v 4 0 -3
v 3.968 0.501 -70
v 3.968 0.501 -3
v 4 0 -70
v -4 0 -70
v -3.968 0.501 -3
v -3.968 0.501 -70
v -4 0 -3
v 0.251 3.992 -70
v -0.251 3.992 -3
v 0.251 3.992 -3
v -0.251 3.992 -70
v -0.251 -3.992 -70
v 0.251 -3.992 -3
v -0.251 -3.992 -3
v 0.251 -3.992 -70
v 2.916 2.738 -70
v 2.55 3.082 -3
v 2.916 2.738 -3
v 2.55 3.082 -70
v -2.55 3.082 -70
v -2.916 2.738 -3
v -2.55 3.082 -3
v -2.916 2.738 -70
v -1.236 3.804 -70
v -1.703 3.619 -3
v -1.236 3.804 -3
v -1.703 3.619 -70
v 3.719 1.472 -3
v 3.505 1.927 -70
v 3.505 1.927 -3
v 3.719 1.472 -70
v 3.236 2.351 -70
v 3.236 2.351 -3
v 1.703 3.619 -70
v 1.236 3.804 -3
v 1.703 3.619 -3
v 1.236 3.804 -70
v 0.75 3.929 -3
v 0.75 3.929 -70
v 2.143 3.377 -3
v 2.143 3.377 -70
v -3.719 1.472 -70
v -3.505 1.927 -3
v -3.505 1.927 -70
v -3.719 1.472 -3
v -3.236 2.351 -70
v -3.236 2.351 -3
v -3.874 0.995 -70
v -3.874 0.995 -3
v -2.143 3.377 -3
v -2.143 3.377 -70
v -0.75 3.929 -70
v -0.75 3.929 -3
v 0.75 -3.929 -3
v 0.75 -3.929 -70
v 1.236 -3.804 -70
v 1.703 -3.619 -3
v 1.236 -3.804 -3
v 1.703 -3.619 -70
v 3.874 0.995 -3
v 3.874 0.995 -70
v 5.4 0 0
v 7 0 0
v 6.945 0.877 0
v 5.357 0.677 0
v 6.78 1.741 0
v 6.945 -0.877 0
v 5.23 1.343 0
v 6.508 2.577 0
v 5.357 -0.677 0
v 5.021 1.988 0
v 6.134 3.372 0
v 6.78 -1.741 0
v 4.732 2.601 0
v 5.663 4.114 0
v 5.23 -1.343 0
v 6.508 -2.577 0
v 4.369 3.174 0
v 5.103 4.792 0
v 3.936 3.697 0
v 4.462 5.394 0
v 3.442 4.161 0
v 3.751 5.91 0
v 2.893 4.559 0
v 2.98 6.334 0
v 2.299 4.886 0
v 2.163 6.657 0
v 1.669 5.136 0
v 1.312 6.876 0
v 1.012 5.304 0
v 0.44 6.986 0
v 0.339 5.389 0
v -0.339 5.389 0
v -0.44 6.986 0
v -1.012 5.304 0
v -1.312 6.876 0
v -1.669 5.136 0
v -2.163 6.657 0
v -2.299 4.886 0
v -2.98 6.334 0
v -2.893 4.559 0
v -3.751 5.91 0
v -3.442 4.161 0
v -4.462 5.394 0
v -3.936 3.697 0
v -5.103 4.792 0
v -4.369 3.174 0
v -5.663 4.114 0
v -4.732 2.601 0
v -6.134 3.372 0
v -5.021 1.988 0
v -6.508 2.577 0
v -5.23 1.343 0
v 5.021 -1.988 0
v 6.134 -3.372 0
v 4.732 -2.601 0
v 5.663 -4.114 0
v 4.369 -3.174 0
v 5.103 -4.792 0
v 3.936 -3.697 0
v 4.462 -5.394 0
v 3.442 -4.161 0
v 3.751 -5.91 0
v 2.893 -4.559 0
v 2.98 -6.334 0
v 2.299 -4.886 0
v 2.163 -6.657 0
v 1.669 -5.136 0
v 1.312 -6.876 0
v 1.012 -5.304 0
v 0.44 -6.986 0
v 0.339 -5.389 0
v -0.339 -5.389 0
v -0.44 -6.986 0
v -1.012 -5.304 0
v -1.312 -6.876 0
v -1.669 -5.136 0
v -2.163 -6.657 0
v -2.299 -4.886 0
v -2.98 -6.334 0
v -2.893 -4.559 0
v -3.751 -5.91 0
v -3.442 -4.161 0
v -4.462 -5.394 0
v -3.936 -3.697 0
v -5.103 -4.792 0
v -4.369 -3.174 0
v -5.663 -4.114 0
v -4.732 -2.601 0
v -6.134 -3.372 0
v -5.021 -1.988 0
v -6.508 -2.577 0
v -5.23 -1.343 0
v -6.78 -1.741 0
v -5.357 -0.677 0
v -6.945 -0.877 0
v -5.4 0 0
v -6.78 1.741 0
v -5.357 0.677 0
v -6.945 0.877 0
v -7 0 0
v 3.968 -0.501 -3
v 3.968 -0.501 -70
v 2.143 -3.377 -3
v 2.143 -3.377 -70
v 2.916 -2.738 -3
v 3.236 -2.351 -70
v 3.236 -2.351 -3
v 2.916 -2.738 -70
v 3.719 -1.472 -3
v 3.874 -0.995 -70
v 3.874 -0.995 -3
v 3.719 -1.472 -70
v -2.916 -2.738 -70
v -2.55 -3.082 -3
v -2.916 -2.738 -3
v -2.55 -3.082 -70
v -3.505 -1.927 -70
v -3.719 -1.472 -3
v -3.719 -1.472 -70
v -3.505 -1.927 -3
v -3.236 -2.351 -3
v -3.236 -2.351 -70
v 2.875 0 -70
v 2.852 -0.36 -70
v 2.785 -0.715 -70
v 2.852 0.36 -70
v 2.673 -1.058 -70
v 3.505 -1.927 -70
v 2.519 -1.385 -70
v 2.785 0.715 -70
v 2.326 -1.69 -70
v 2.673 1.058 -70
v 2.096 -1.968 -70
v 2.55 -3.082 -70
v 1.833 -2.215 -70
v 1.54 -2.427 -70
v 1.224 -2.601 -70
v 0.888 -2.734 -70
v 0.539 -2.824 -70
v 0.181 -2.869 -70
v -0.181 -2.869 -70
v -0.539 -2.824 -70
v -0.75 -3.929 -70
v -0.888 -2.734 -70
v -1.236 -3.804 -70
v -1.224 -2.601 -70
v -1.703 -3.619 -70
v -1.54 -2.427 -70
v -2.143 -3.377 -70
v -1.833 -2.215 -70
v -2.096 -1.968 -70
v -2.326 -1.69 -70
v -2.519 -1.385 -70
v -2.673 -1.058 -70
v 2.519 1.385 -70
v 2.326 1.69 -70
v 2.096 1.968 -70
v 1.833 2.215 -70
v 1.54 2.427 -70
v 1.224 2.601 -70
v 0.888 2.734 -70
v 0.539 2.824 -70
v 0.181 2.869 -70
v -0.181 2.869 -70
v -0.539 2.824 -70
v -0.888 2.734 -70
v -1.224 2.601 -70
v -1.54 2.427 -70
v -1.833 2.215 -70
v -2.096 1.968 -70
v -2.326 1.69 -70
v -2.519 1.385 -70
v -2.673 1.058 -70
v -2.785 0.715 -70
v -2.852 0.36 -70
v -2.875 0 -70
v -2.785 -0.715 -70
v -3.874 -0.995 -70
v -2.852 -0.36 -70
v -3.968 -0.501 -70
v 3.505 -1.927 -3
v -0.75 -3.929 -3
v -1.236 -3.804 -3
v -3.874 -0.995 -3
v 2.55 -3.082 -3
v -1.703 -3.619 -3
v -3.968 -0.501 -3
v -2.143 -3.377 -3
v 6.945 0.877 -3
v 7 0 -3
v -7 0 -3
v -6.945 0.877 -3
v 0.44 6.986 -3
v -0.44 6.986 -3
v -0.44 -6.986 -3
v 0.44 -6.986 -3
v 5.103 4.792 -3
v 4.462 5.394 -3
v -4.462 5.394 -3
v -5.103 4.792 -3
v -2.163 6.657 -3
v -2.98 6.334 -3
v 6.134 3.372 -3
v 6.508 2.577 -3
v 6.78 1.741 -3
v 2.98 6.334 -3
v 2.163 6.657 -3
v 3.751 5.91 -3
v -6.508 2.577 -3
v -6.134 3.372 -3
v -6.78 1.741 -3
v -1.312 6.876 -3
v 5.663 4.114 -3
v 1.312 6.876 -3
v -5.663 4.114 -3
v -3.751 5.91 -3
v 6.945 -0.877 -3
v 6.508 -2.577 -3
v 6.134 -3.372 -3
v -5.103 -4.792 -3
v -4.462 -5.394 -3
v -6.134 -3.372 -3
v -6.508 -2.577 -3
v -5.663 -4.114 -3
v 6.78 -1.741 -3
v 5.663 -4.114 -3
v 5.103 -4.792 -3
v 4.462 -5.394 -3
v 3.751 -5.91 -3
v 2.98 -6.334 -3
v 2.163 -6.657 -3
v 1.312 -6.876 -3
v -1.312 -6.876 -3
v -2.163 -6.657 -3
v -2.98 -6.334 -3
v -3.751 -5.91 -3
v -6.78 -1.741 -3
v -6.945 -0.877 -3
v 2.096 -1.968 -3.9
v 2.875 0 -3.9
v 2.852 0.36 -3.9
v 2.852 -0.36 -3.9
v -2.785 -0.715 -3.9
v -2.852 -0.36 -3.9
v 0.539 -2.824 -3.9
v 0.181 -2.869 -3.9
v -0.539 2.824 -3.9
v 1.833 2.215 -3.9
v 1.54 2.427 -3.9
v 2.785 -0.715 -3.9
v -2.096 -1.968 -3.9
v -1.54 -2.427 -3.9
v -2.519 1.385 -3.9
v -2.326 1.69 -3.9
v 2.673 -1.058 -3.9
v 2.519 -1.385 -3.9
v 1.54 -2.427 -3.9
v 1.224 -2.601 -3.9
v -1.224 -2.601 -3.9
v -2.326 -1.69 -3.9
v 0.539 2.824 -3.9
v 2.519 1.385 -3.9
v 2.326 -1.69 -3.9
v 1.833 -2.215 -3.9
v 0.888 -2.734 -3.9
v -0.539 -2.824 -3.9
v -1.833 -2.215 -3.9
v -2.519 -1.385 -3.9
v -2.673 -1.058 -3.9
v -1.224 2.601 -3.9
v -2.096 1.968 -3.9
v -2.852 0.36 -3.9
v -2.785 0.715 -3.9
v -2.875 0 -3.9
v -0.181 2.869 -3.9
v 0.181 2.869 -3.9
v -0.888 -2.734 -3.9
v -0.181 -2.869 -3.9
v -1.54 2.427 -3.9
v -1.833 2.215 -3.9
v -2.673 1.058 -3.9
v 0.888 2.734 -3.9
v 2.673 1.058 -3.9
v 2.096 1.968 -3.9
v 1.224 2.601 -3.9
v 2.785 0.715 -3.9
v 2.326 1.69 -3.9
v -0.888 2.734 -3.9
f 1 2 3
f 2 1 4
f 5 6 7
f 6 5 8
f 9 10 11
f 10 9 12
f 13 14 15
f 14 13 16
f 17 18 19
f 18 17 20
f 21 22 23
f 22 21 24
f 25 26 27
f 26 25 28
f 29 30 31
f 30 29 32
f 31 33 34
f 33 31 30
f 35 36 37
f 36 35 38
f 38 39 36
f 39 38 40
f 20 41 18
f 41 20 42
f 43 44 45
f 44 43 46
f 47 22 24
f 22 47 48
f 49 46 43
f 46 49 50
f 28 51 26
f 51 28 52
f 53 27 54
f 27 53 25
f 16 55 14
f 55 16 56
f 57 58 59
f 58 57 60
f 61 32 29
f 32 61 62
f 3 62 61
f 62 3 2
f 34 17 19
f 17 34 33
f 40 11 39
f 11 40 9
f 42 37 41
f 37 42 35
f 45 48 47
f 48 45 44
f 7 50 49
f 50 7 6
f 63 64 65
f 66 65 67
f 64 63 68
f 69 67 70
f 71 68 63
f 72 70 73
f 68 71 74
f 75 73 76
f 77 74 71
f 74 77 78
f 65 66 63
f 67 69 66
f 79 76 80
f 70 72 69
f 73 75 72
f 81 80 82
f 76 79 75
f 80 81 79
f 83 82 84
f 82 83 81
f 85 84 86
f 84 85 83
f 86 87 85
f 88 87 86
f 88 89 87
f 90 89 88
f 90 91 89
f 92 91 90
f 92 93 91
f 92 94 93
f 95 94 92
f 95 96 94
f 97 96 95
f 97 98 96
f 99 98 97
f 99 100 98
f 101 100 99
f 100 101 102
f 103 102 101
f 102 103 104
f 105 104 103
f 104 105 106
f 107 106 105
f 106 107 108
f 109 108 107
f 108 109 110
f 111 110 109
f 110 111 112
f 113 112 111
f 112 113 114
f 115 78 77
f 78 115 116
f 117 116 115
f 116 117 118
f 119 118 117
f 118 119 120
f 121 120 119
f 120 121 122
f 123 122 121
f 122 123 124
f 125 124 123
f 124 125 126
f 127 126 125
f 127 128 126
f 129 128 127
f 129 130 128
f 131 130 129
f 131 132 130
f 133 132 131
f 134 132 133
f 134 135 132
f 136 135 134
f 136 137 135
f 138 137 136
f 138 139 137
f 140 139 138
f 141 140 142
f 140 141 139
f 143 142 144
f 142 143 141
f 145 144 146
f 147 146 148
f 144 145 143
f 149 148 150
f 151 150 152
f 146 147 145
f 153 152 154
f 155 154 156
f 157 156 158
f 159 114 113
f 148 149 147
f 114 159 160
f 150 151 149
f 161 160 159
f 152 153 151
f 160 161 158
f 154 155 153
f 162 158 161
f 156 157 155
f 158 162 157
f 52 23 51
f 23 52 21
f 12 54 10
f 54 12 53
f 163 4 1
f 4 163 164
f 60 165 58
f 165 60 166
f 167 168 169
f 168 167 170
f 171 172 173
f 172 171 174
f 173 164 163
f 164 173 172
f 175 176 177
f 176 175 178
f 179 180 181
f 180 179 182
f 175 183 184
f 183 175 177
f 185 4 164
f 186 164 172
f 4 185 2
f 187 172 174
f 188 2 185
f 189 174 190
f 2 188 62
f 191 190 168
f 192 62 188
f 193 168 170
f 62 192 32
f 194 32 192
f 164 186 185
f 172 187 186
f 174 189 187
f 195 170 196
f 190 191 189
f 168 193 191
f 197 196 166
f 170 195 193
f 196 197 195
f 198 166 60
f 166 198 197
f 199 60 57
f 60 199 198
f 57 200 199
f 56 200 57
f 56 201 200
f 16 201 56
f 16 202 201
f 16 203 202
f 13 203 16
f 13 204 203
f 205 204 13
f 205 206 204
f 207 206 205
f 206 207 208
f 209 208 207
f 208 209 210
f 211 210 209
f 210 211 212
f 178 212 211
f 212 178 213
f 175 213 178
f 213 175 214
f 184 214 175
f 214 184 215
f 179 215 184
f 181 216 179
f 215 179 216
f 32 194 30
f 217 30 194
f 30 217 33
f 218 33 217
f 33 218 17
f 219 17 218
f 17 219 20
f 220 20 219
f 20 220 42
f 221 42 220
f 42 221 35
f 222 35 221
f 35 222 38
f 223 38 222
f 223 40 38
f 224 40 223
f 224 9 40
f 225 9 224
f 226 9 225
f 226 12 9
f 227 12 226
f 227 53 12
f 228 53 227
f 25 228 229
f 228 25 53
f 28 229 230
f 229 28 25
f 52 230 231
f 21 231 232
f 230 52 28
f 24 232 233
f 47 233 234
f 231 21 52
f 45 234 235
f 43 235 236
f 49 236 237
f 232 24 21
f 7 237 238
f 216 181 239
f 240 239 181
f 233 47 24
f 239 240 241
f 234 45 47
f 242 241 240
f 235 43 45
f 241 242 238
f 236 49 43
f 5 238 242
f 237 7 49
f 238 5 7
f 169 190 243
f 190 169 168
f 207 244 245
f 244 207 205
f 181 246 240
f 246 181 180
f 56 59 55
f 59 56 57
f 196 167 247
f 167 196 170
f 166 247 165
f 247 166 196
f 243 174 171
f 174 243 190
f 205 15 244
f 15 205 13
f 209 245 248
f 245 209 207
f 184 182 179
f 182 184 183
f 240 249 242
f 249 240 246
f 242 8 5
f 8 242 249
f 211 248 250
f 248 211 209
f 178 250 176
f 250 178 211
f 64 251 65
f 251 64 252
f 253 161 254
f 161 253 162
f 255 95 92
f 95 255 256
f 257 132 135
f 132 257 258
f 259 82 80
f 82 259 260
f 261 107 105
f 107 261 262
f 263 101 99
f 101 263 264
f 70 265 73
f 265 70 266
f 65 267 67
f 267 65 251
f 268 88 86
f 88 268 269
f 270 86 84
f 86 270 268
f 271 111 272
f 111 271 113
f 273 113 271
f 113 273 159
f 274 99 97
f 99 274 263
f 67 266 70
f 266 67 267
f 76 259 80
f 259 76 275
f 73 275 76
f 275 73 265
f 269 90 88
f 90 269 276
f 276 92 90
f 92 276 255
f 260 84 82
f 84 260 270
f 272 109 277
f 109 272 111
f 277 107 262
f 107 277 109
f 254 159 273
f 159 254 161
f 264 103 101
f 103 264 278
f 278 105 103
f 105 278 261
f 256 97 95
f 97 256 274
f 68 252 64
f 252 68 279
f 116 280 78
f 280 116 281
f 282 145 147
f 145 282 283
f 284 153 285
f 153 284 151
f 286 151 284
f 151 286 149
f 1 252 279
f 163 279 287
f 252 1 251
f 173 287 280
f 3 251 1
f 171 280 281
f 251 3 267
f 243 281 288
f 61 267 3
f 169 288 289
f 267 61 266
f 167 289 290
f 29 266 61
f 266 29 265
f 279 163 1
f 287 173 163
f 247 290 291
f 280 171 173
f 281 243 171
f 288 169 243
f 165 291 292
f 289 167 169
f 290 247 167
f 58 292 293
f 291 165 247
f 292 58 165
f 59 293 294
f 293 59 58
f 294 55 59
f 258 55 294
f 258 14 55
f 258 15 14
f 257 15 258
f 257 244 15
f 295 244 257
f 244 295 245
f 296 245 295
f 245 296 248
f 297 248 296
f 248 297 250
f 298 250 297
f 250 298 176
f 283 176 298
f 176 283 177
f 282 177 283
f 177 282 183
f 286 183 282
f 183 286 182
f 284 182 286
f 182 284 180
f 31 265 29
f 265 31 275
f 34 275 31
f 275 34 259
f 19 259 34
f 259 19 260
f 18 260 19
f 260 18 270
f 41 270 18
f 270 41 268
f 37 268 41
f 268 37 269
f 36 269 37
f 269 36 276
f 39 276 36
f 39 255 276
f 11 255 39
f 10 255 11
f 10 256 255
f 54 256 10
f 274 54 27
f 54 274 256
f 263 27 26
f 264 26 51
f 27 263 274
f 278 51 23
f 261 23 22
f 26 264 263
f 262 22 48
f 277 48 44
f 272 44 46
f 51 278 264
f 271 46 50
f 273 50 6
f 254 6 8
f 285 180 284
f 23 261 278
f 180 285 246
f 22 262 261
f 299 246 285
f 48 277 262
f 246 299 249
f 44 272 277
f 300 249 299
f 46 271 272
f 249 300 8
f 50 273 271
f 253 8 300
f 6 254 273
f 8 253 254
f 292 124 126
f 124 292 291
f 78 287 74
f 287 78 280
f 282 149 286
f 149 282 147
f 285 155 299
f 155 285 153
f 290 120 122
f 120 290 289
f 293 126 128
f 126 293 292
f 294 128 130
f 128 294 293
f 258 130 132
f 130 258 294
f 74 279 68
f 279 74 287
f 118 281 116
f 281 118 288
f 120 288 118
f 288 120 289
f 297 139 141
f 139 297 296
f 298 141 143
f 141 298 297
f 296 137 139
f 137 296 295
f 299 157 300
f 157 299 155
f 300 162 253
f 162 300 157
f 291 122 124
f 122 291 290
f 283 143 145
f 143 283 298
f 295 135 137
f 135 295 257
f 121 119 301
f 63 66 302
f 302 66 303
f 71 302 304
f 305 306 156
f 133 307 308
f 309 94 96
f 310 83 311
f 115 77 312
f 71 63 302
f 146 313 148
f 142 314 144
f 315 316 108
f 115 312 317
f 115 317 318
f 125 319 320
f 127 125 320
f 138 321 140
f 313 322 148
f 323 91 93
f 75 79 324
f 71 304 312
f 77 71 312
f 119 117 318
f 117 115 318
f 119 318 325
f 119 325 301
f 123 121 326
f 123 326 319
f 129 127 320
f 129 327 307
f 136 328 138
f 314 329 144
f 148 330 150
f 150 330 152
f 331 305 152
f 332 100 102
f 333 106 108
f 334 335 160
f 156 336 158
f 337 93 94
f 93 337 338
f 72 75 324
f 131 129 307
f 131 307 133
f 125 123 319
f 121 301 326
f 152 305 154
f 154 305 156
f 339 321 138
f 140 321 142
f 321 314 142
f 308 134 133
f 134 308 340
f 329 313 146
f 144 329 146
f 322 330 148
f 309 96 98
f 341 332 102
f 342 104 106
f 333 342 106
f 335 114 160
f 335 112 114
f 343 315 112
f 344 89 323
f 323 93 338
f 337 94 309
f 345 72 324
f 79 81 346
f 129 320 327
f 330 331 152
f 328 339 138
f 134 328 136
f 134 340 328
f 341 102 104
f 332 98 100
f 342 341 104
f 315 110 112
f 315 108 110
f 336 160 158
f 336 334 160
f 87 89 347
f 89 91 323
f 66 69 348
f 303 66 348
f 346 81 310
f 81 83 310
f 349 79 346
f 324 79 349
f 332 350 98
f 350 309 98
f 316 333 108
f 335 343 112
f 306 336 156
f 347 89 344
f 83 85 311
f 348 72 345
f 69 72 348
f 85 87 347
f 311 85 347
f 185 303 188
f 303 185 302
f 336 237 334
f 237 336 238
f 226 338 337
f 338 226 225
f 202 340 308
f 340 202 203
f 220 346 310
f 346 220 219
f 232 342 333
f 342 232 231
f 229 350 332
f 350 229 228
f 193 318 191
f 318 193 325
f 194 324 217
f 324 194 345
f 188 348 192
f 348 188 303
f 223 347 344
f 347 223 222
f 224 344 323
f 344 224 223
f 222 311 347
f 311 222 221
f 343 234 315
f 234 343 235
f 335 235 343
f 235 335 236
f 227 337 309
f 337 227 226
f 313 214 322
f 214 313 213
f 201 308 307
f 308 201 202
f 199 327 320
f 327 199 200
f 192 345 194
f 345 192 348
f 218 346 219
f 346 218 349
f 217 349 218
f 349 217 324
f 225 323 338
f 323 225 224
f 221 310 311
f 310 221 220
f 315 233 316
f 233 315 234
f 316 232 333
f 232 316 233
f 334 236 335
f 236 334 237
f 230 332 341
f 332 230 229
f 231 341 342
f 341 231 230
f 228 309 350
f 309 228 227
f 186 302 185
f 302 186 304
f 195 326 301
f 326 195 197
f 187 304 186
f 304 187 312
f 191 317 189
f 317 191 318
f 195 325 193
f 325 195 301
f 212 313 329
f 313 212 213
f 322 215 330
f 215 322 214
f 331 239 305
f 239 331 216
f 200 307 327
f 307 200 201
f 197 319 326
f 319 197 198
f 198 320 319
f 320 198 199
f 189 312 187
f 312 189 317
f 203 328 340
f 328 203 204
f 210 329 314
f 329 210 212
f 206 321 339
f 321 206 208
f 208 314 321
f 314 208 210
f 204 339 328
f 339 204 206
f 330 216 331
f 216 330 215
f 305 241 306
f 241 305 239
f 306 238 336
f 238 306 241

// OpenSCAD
$fn = 50;


difference() {
	union() {
		translate(v = [0, 0, -70.0000000000]) {
			cylinder(h = 70, r = 4.0000000000);
		}
		translate(v = [0, 0, -3.0000000000]) {
			cylinder(h = 3, r = 7.0000000000);
		}
	}
	union() {
		translate(v = [0, 0, 0]) {
			rotate(a = [0, 0, 0]) {
				difference() {
					union() {
						#translate(v = [0, 0, -70.0000000000]) {
							cylinder(h = 70, r = 2.6000000000);
						}
						#translate(v = [0, 0, -3.9000000000]) {
							cylinder(h = 3.9000000000, r1 = 2.8750000000, r2 = 5.4000000000);
						}
						#translate(v = [0, 0, -70.0000000000]) {
							cylinder(h = 70, r = 2.8750000000);
						}
						#translate(v = [0, 0, -70.0000000000]) {
							cylinder(h = 70, r = 2.6000000000);
						}
					}
					union();
				}
			}
		}
	}
}
